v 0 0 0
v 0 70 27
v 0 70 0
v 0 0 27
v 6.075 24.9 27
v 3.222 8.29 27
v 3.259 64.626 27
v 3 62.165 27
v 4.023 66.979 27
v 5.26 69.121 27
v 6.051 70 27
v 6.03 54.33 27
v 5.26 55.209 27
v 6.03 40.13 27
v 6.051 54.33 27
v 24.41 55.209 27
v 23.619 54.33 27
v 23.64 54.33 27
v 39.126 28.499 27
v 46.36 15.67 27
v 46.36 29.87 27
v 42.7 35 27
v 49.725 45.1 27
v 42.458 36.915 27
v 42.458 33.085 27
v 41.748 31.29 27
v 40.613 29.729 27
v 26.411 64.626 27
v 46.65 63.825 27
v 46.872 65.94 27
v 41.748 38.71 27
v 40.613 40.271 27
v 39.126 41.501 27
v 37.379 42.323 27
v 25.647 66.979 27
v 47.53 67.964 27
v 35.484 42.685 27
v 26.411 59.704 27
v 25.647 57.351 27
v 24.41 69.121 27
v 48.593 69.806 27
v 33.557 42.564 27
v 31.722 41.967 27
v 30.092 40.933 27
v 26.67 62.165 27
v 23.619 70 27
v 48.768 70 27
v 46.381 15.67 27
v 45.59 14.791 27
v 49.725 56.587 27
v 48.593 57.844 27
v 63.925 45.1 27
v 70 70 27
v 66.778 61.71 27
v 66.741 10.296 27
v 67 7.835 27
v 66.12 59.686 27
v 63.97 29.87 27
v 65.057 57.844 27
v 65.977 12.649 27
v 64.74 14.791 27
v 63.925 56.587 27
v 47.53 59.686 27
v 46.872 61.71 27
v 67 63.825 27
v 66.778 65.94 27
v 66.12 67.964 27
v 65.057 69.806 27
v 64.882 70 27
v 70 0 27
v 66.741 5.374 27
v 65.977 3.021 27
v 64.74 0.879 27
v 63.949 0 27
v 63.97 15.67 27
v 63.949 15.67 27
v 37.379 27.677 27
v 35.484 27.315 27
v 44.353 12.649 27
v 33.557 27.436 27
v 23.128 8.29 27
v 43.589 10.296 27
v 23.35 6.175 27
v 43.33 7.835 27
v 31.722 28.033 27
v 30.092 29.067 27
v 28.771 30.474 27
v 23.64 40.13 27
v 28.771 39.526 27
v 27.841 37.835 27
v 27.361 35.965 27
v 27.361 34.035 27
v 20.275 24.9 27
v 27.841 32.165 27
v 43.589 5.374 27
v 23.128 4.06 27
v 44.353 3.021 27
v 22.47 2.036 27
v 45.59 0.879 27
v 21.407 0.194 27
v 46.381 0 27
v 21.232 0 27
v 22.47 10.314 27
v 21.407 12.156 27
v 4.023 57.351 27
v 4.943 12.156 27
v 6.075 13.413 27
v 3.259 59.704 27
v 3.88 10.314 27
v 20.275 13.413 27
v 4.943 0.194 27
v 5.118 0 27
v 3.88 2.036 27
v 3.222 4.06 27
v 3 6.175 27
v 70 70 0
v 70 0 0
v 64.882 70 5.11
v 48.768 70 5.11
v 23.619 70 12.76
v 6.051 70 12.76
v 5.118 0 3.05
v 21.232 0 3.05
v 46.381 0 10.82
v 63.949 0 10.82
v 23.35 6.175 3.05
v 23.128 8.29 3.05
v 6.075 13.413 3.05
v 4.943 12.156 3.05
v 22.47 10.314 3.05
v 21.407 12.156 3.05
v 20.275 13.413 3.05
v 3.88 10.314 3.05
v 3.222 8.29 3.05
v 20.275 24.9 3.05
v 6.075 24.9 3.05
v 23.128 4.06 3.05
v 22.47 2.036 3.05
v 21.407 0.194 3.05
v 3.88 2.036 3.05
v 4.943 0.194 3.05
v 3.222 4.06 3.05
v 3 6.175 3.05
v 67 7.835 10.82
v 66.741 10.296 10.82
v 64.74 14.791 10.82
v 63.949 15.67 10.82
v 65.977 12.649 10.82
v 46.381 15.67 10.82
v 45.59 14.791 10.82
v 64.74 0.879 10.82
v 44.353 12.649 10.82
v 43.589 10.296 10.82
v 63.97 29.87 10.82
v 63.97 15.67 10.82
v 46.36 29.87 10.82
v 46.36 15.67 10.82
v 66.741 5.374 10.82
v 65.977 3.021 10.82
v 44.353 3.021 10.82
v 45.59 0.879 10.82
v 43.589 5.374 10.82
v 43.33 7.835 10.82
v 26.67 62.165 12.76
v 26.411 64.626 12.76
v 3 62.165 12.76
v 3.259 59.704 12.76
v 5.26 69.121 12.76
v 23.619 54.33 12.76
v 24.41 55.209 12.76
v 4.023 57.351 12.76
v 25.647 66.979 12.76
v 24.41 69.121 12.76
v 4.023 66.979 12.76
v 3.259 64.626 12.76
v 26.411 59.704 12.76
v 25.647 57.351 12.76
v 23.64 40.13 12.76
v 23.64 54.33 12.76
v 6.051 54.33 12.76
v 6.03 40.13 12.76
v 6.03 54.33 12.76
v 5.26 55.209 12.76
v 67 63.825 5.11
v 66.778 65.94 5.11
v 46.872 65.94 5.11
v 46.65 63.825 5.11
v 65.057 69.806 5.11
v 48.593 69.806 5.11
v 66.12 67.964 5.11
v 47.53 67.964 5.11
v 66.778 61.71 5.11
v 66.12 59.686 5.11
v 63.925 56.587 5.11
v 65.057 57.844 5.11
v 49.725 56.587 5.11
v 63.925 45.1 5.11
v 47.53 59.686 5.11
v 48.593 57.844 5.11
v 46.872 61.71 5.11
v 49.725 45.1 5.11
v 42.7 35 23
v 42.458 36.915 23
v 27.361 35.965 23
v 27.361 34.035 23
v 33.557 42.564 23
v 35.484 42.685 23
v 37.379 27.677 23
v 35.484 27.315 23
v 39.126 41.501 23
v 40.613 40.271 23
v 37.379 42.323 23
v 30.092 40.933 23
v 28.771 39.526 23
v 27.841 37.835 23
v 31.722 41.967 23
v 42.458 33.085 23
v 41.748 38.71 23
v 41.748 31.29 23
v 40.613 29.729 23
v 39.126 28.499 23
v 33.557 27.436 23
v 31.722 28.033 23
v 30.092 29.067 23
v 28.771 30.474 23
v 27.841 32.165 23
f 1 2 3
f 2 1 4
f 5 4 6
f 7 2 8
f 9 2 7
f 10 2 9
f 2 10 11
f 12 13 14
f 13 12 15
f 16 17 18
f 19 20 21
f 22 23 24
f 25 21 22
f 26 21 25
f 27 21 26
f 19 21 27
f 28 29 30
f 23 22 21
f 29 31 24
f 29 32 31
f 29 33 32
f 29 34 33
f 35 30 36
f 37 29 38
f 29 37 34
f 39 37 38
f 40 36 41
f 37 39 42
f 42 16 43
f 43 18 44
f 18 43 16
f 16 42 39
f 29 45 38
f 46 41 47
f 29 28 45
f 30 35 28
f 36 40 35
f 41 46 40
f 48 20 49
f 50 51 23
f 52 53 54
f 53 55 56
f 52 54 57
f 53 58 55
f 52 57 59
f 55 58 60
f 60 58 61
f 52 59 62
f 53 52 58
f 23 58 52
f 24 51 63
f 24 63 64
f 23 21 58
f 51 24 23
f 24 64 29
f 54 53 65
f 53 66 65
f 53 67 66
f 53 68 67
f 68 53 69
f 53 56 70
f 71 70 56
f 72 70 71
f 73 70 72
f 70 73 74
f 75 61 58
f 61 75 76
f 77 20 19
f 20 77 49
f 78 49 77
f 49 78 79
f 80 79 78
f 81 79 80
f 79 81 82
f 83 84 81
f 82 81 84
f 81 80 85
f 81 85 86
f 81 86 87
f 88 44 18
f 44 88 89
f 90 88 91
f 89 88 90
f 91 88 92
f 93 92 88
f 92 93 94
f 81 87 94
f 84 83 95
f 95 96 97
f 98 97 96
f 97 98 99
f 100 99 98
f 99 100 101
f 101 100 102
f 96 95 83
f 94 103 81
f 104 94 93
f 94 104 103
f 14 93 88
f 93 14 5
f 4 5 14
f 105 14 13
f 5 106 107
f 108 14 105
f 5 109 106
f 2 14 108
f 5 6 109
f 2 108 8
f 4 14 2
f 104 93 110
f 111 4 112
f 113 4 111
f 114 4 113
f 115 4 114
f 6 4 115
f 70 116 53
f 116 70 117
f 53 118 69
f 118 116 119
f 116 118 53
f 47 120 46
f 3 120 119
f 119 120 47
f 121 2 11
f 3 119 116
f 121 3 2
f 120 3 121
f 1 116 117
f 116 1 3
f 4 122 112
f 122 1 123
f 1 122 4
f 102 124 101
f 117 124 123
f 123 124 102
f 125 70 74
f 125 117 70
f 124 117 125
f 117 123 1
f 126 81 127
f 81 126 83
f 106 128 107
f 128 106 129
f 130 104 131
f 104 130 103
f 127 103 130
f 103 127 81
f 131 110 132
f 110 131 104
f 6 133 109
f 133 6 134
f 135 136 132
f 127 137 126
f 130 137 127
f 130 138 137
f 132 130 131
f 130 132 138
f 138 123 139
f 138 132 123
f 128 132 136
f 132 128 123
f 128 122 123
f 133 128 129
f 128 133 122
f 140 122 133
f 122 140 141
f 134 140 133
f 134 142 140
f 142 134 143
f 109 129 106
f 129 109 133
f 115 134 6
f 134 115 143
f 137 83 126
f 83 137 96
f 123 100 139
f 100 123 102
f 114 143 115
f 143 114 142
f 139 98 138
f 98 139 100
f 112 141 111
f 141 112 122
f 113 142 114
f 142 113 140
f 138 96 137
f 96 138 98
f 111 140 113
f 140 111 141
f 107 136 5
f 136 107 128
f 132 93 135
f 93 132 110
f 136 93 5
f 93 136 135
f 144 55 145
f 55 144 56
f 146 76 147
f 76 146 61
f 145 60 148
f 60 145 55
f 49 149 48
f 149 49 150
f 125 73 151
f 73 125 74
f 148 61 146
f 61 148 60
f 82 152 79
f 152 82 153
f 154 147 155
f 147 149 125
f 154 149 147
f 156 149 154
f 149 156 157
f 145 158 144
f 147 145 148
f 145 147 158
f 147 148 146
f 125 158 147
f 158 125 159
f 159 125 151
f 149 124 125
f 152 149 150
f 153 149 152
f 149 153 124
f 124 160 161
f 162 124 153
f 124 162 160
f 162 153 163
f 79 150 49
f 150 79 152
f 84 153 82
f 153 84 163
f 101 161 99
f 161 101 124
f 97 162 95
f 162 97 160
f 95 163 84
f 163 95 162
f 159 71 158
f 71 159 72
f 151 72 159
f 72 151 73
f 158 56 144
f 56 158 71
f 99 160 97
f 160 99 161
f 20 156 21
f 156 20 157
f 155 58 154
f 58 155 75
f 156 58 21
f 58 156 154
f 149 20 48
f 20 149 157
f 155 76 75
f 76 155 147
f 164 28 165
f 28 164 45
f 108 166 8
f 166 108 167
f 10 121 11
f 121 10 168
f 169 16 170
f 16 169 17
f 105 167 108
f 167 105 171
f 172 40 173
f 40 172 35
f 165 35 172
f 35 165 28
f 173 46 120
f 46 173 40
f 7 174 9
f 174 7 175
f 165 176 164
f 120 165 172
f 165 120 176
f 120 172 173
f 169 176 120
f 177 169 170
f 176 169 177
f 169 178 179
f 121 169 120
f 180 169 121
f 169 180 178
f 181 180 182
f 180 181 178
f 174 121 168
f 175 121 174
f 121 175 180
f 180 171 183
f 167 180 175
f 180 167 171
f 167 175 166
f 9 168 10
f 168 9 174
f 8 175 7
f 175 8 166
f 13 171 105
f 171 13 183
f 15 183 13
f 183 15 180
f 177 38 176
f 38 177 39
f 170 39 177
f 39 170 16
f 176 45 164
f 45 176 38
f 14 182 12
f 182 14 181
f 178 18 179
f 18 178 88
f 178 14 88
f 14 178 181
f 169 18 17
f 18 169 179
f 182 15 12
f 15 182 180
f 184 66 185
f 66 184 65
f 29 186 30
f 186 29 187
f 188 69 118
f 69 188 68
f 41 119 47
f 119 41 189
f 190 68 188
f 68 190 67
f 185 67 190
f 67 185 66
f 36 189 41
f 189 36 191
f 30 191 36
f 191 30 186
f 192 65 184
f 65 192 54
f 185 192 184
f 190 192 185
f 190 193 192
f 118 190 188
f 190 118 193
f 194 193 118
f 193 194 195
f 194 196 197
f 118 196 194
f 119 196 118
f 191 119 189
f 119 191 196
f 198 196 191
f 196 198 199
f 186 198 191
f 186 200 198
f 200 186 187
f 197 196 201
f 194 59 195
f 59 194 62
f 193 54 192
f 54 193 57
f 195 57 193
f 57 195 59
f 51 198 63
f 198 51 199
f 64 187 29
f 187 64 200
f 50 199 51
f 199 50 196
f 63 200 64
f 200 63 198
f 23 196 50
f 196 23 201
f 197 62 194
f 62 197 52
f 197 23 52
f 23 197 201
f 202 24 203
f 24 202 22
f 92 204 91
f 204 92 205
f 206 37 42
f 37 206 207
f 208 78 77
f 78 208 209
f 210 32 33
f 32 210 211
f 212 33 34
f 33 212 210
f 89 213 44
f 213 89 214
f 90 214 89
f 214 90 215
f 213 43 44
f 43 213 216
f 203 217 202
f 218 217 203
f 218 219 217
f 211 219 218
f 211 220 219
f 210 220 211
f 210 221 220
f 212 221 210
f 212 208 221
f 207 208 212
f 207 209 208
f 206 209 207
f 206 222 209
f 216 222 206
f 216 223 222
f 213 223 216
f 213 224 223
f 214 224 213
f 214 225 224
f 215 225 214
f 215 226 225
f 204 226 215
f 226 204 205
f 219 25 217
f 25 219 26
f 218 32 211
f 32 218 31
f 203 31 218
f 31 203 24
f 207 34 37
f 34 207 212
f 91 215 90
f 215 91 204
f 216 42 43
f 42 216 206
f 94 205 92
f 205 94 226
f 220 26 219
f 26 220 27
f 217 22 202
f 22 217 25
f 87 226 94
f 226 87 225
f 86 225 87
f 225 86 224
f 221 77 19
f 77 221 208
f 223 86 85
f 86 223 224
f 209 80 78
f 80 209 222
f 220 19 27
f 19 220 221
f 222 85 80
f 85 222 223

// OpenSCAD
length = 70;
width = 70;
height = 27;

//Based on magnet size:
magnetBaseInnerDiameter = 15.4;
magnetHeight = 4.0;
//
//		2s
//			23 tokens
//			19.05 diameter
//			extra box 13.7 x 9.05
//			height 23.45 + 21.39
//		4s
//			15 tokens
//			23.17 diameter
//			extra box 17.11 x 10.7
//			height 29.35, or 15.68 + 13.74


smallCircleDiameter = 19.05 + .8 + .5;
smallCircleOffset = 4;
smallCircleHeight1 = 23.45 + .5;
smallCircleHeight2 = 21.39 + .5;
smallExtraBoxLength=13.7 + .5;
smallExtraBoxWidth = 9.05 + 2 + .5;
smallBoxWidthOffset = 3;

mediumCircleDiameter = 23.17 + .5;
mediumCircleOffset = 4;
mediumCircleHeight1 = 15.68 + .5;
mediumCircleHeight2 = 13.74 + .5;
mediumExtraBoxLength=17.11 + .5;
mediumExtraBoxWidth = 10.7 + 3 + .5;
mediumBoxWidthOffset = 4;



spaceBetweenCircles = 3;

    

difference(){
    cube([length, width, height]);

    translate([spaceBetweenCircles + smallCircleDiameter/2, smallCircleDiameter/2 - smallCircleOffset, height - smallCircleHeight1])
        cylinder(smallCircleHeight1, d=smallCircleDiameter);


    translate([spaceBetweenCircles + smallCircleDiameter/2 - smallExtraBoxLength/2, (smallCircleDiameter - smallCircleOffset) - smallBoxWidthOffset, height - smallCircleHeight1])
        cube([smallExtraBoxLength, smallExtraBoxWidth, smallCircleHeight1]);
    
    
    translate([length - (mediumCircleDiameter/2 + spaceBetweenCircles), mediumCircleDiameter/2 - mediumCircleOffset, height - mediumCircleHeight1])
        cylinder(mediumCircleHeight1, d=mediumCircleDiameter);
    
    translate([length - (mediumExtraBoxLength + spaceBetweenCircles + mediumCircleDiameter/2 - mediumExtraBoxLength/2), (mediumCircleDiameter - mediumCircleOffset) - mediumBoxWidthOffset, height - mediumCircleHeight1])
        cube([mediumExtraBoxLength, mediumExtraBoxWidth, mediumCircleHeight1]);
    
    
    translate([spaceBetweenCircles + mediumCircleDiameter/2, width - (mediumCircleDiameter/2 - mediumCircleOffset), height - mediumCircleHeight2])
        cylinder(mediumCircleHeight2, d=mediumCircleDiameter);
translate([spaceBetweenCircles + mediumCircleDiameter/2 - mediumExtraBoxLength/2, width - (mediumExtraBoxWidth + mediumCircleDiameter - mediumCircleOffset) + mediumBoxWidthOffset, height - mediumCircleHeight2])
        cube([mediumExtraBoxLength, mediumExtraBoxWidth, mediumCircleHeight2]);


    
    translate([length - (smallCircleDiameter/2 + spaceBetweenCircles), width - (smallCircleDiameter/2 - smallCircleOffset), height - smallCircleHeight2])
        cylinder(smallCircleHeight2, d=smallCircleDiameter);

    
translate([length - (smallExtraBoxLength + spaceBetweenCircles + smallCircleDiameter/2 - smallExtraBoxLength/2), width - (smallExtraBoxWidth + smallCircleDiameter - smallCircleOffset) + smallBoxWidthOffset, height - smallCircleHeight2])
        cube([smallExtraBoxLength, smallExtraBoxWidth, smallCircleHeight2]);



        
    translate([length/2, width/2, height - magnetHeight])
        cylinder(magnetHeight, d=magnetBaseInnerDiameter);
        

}
